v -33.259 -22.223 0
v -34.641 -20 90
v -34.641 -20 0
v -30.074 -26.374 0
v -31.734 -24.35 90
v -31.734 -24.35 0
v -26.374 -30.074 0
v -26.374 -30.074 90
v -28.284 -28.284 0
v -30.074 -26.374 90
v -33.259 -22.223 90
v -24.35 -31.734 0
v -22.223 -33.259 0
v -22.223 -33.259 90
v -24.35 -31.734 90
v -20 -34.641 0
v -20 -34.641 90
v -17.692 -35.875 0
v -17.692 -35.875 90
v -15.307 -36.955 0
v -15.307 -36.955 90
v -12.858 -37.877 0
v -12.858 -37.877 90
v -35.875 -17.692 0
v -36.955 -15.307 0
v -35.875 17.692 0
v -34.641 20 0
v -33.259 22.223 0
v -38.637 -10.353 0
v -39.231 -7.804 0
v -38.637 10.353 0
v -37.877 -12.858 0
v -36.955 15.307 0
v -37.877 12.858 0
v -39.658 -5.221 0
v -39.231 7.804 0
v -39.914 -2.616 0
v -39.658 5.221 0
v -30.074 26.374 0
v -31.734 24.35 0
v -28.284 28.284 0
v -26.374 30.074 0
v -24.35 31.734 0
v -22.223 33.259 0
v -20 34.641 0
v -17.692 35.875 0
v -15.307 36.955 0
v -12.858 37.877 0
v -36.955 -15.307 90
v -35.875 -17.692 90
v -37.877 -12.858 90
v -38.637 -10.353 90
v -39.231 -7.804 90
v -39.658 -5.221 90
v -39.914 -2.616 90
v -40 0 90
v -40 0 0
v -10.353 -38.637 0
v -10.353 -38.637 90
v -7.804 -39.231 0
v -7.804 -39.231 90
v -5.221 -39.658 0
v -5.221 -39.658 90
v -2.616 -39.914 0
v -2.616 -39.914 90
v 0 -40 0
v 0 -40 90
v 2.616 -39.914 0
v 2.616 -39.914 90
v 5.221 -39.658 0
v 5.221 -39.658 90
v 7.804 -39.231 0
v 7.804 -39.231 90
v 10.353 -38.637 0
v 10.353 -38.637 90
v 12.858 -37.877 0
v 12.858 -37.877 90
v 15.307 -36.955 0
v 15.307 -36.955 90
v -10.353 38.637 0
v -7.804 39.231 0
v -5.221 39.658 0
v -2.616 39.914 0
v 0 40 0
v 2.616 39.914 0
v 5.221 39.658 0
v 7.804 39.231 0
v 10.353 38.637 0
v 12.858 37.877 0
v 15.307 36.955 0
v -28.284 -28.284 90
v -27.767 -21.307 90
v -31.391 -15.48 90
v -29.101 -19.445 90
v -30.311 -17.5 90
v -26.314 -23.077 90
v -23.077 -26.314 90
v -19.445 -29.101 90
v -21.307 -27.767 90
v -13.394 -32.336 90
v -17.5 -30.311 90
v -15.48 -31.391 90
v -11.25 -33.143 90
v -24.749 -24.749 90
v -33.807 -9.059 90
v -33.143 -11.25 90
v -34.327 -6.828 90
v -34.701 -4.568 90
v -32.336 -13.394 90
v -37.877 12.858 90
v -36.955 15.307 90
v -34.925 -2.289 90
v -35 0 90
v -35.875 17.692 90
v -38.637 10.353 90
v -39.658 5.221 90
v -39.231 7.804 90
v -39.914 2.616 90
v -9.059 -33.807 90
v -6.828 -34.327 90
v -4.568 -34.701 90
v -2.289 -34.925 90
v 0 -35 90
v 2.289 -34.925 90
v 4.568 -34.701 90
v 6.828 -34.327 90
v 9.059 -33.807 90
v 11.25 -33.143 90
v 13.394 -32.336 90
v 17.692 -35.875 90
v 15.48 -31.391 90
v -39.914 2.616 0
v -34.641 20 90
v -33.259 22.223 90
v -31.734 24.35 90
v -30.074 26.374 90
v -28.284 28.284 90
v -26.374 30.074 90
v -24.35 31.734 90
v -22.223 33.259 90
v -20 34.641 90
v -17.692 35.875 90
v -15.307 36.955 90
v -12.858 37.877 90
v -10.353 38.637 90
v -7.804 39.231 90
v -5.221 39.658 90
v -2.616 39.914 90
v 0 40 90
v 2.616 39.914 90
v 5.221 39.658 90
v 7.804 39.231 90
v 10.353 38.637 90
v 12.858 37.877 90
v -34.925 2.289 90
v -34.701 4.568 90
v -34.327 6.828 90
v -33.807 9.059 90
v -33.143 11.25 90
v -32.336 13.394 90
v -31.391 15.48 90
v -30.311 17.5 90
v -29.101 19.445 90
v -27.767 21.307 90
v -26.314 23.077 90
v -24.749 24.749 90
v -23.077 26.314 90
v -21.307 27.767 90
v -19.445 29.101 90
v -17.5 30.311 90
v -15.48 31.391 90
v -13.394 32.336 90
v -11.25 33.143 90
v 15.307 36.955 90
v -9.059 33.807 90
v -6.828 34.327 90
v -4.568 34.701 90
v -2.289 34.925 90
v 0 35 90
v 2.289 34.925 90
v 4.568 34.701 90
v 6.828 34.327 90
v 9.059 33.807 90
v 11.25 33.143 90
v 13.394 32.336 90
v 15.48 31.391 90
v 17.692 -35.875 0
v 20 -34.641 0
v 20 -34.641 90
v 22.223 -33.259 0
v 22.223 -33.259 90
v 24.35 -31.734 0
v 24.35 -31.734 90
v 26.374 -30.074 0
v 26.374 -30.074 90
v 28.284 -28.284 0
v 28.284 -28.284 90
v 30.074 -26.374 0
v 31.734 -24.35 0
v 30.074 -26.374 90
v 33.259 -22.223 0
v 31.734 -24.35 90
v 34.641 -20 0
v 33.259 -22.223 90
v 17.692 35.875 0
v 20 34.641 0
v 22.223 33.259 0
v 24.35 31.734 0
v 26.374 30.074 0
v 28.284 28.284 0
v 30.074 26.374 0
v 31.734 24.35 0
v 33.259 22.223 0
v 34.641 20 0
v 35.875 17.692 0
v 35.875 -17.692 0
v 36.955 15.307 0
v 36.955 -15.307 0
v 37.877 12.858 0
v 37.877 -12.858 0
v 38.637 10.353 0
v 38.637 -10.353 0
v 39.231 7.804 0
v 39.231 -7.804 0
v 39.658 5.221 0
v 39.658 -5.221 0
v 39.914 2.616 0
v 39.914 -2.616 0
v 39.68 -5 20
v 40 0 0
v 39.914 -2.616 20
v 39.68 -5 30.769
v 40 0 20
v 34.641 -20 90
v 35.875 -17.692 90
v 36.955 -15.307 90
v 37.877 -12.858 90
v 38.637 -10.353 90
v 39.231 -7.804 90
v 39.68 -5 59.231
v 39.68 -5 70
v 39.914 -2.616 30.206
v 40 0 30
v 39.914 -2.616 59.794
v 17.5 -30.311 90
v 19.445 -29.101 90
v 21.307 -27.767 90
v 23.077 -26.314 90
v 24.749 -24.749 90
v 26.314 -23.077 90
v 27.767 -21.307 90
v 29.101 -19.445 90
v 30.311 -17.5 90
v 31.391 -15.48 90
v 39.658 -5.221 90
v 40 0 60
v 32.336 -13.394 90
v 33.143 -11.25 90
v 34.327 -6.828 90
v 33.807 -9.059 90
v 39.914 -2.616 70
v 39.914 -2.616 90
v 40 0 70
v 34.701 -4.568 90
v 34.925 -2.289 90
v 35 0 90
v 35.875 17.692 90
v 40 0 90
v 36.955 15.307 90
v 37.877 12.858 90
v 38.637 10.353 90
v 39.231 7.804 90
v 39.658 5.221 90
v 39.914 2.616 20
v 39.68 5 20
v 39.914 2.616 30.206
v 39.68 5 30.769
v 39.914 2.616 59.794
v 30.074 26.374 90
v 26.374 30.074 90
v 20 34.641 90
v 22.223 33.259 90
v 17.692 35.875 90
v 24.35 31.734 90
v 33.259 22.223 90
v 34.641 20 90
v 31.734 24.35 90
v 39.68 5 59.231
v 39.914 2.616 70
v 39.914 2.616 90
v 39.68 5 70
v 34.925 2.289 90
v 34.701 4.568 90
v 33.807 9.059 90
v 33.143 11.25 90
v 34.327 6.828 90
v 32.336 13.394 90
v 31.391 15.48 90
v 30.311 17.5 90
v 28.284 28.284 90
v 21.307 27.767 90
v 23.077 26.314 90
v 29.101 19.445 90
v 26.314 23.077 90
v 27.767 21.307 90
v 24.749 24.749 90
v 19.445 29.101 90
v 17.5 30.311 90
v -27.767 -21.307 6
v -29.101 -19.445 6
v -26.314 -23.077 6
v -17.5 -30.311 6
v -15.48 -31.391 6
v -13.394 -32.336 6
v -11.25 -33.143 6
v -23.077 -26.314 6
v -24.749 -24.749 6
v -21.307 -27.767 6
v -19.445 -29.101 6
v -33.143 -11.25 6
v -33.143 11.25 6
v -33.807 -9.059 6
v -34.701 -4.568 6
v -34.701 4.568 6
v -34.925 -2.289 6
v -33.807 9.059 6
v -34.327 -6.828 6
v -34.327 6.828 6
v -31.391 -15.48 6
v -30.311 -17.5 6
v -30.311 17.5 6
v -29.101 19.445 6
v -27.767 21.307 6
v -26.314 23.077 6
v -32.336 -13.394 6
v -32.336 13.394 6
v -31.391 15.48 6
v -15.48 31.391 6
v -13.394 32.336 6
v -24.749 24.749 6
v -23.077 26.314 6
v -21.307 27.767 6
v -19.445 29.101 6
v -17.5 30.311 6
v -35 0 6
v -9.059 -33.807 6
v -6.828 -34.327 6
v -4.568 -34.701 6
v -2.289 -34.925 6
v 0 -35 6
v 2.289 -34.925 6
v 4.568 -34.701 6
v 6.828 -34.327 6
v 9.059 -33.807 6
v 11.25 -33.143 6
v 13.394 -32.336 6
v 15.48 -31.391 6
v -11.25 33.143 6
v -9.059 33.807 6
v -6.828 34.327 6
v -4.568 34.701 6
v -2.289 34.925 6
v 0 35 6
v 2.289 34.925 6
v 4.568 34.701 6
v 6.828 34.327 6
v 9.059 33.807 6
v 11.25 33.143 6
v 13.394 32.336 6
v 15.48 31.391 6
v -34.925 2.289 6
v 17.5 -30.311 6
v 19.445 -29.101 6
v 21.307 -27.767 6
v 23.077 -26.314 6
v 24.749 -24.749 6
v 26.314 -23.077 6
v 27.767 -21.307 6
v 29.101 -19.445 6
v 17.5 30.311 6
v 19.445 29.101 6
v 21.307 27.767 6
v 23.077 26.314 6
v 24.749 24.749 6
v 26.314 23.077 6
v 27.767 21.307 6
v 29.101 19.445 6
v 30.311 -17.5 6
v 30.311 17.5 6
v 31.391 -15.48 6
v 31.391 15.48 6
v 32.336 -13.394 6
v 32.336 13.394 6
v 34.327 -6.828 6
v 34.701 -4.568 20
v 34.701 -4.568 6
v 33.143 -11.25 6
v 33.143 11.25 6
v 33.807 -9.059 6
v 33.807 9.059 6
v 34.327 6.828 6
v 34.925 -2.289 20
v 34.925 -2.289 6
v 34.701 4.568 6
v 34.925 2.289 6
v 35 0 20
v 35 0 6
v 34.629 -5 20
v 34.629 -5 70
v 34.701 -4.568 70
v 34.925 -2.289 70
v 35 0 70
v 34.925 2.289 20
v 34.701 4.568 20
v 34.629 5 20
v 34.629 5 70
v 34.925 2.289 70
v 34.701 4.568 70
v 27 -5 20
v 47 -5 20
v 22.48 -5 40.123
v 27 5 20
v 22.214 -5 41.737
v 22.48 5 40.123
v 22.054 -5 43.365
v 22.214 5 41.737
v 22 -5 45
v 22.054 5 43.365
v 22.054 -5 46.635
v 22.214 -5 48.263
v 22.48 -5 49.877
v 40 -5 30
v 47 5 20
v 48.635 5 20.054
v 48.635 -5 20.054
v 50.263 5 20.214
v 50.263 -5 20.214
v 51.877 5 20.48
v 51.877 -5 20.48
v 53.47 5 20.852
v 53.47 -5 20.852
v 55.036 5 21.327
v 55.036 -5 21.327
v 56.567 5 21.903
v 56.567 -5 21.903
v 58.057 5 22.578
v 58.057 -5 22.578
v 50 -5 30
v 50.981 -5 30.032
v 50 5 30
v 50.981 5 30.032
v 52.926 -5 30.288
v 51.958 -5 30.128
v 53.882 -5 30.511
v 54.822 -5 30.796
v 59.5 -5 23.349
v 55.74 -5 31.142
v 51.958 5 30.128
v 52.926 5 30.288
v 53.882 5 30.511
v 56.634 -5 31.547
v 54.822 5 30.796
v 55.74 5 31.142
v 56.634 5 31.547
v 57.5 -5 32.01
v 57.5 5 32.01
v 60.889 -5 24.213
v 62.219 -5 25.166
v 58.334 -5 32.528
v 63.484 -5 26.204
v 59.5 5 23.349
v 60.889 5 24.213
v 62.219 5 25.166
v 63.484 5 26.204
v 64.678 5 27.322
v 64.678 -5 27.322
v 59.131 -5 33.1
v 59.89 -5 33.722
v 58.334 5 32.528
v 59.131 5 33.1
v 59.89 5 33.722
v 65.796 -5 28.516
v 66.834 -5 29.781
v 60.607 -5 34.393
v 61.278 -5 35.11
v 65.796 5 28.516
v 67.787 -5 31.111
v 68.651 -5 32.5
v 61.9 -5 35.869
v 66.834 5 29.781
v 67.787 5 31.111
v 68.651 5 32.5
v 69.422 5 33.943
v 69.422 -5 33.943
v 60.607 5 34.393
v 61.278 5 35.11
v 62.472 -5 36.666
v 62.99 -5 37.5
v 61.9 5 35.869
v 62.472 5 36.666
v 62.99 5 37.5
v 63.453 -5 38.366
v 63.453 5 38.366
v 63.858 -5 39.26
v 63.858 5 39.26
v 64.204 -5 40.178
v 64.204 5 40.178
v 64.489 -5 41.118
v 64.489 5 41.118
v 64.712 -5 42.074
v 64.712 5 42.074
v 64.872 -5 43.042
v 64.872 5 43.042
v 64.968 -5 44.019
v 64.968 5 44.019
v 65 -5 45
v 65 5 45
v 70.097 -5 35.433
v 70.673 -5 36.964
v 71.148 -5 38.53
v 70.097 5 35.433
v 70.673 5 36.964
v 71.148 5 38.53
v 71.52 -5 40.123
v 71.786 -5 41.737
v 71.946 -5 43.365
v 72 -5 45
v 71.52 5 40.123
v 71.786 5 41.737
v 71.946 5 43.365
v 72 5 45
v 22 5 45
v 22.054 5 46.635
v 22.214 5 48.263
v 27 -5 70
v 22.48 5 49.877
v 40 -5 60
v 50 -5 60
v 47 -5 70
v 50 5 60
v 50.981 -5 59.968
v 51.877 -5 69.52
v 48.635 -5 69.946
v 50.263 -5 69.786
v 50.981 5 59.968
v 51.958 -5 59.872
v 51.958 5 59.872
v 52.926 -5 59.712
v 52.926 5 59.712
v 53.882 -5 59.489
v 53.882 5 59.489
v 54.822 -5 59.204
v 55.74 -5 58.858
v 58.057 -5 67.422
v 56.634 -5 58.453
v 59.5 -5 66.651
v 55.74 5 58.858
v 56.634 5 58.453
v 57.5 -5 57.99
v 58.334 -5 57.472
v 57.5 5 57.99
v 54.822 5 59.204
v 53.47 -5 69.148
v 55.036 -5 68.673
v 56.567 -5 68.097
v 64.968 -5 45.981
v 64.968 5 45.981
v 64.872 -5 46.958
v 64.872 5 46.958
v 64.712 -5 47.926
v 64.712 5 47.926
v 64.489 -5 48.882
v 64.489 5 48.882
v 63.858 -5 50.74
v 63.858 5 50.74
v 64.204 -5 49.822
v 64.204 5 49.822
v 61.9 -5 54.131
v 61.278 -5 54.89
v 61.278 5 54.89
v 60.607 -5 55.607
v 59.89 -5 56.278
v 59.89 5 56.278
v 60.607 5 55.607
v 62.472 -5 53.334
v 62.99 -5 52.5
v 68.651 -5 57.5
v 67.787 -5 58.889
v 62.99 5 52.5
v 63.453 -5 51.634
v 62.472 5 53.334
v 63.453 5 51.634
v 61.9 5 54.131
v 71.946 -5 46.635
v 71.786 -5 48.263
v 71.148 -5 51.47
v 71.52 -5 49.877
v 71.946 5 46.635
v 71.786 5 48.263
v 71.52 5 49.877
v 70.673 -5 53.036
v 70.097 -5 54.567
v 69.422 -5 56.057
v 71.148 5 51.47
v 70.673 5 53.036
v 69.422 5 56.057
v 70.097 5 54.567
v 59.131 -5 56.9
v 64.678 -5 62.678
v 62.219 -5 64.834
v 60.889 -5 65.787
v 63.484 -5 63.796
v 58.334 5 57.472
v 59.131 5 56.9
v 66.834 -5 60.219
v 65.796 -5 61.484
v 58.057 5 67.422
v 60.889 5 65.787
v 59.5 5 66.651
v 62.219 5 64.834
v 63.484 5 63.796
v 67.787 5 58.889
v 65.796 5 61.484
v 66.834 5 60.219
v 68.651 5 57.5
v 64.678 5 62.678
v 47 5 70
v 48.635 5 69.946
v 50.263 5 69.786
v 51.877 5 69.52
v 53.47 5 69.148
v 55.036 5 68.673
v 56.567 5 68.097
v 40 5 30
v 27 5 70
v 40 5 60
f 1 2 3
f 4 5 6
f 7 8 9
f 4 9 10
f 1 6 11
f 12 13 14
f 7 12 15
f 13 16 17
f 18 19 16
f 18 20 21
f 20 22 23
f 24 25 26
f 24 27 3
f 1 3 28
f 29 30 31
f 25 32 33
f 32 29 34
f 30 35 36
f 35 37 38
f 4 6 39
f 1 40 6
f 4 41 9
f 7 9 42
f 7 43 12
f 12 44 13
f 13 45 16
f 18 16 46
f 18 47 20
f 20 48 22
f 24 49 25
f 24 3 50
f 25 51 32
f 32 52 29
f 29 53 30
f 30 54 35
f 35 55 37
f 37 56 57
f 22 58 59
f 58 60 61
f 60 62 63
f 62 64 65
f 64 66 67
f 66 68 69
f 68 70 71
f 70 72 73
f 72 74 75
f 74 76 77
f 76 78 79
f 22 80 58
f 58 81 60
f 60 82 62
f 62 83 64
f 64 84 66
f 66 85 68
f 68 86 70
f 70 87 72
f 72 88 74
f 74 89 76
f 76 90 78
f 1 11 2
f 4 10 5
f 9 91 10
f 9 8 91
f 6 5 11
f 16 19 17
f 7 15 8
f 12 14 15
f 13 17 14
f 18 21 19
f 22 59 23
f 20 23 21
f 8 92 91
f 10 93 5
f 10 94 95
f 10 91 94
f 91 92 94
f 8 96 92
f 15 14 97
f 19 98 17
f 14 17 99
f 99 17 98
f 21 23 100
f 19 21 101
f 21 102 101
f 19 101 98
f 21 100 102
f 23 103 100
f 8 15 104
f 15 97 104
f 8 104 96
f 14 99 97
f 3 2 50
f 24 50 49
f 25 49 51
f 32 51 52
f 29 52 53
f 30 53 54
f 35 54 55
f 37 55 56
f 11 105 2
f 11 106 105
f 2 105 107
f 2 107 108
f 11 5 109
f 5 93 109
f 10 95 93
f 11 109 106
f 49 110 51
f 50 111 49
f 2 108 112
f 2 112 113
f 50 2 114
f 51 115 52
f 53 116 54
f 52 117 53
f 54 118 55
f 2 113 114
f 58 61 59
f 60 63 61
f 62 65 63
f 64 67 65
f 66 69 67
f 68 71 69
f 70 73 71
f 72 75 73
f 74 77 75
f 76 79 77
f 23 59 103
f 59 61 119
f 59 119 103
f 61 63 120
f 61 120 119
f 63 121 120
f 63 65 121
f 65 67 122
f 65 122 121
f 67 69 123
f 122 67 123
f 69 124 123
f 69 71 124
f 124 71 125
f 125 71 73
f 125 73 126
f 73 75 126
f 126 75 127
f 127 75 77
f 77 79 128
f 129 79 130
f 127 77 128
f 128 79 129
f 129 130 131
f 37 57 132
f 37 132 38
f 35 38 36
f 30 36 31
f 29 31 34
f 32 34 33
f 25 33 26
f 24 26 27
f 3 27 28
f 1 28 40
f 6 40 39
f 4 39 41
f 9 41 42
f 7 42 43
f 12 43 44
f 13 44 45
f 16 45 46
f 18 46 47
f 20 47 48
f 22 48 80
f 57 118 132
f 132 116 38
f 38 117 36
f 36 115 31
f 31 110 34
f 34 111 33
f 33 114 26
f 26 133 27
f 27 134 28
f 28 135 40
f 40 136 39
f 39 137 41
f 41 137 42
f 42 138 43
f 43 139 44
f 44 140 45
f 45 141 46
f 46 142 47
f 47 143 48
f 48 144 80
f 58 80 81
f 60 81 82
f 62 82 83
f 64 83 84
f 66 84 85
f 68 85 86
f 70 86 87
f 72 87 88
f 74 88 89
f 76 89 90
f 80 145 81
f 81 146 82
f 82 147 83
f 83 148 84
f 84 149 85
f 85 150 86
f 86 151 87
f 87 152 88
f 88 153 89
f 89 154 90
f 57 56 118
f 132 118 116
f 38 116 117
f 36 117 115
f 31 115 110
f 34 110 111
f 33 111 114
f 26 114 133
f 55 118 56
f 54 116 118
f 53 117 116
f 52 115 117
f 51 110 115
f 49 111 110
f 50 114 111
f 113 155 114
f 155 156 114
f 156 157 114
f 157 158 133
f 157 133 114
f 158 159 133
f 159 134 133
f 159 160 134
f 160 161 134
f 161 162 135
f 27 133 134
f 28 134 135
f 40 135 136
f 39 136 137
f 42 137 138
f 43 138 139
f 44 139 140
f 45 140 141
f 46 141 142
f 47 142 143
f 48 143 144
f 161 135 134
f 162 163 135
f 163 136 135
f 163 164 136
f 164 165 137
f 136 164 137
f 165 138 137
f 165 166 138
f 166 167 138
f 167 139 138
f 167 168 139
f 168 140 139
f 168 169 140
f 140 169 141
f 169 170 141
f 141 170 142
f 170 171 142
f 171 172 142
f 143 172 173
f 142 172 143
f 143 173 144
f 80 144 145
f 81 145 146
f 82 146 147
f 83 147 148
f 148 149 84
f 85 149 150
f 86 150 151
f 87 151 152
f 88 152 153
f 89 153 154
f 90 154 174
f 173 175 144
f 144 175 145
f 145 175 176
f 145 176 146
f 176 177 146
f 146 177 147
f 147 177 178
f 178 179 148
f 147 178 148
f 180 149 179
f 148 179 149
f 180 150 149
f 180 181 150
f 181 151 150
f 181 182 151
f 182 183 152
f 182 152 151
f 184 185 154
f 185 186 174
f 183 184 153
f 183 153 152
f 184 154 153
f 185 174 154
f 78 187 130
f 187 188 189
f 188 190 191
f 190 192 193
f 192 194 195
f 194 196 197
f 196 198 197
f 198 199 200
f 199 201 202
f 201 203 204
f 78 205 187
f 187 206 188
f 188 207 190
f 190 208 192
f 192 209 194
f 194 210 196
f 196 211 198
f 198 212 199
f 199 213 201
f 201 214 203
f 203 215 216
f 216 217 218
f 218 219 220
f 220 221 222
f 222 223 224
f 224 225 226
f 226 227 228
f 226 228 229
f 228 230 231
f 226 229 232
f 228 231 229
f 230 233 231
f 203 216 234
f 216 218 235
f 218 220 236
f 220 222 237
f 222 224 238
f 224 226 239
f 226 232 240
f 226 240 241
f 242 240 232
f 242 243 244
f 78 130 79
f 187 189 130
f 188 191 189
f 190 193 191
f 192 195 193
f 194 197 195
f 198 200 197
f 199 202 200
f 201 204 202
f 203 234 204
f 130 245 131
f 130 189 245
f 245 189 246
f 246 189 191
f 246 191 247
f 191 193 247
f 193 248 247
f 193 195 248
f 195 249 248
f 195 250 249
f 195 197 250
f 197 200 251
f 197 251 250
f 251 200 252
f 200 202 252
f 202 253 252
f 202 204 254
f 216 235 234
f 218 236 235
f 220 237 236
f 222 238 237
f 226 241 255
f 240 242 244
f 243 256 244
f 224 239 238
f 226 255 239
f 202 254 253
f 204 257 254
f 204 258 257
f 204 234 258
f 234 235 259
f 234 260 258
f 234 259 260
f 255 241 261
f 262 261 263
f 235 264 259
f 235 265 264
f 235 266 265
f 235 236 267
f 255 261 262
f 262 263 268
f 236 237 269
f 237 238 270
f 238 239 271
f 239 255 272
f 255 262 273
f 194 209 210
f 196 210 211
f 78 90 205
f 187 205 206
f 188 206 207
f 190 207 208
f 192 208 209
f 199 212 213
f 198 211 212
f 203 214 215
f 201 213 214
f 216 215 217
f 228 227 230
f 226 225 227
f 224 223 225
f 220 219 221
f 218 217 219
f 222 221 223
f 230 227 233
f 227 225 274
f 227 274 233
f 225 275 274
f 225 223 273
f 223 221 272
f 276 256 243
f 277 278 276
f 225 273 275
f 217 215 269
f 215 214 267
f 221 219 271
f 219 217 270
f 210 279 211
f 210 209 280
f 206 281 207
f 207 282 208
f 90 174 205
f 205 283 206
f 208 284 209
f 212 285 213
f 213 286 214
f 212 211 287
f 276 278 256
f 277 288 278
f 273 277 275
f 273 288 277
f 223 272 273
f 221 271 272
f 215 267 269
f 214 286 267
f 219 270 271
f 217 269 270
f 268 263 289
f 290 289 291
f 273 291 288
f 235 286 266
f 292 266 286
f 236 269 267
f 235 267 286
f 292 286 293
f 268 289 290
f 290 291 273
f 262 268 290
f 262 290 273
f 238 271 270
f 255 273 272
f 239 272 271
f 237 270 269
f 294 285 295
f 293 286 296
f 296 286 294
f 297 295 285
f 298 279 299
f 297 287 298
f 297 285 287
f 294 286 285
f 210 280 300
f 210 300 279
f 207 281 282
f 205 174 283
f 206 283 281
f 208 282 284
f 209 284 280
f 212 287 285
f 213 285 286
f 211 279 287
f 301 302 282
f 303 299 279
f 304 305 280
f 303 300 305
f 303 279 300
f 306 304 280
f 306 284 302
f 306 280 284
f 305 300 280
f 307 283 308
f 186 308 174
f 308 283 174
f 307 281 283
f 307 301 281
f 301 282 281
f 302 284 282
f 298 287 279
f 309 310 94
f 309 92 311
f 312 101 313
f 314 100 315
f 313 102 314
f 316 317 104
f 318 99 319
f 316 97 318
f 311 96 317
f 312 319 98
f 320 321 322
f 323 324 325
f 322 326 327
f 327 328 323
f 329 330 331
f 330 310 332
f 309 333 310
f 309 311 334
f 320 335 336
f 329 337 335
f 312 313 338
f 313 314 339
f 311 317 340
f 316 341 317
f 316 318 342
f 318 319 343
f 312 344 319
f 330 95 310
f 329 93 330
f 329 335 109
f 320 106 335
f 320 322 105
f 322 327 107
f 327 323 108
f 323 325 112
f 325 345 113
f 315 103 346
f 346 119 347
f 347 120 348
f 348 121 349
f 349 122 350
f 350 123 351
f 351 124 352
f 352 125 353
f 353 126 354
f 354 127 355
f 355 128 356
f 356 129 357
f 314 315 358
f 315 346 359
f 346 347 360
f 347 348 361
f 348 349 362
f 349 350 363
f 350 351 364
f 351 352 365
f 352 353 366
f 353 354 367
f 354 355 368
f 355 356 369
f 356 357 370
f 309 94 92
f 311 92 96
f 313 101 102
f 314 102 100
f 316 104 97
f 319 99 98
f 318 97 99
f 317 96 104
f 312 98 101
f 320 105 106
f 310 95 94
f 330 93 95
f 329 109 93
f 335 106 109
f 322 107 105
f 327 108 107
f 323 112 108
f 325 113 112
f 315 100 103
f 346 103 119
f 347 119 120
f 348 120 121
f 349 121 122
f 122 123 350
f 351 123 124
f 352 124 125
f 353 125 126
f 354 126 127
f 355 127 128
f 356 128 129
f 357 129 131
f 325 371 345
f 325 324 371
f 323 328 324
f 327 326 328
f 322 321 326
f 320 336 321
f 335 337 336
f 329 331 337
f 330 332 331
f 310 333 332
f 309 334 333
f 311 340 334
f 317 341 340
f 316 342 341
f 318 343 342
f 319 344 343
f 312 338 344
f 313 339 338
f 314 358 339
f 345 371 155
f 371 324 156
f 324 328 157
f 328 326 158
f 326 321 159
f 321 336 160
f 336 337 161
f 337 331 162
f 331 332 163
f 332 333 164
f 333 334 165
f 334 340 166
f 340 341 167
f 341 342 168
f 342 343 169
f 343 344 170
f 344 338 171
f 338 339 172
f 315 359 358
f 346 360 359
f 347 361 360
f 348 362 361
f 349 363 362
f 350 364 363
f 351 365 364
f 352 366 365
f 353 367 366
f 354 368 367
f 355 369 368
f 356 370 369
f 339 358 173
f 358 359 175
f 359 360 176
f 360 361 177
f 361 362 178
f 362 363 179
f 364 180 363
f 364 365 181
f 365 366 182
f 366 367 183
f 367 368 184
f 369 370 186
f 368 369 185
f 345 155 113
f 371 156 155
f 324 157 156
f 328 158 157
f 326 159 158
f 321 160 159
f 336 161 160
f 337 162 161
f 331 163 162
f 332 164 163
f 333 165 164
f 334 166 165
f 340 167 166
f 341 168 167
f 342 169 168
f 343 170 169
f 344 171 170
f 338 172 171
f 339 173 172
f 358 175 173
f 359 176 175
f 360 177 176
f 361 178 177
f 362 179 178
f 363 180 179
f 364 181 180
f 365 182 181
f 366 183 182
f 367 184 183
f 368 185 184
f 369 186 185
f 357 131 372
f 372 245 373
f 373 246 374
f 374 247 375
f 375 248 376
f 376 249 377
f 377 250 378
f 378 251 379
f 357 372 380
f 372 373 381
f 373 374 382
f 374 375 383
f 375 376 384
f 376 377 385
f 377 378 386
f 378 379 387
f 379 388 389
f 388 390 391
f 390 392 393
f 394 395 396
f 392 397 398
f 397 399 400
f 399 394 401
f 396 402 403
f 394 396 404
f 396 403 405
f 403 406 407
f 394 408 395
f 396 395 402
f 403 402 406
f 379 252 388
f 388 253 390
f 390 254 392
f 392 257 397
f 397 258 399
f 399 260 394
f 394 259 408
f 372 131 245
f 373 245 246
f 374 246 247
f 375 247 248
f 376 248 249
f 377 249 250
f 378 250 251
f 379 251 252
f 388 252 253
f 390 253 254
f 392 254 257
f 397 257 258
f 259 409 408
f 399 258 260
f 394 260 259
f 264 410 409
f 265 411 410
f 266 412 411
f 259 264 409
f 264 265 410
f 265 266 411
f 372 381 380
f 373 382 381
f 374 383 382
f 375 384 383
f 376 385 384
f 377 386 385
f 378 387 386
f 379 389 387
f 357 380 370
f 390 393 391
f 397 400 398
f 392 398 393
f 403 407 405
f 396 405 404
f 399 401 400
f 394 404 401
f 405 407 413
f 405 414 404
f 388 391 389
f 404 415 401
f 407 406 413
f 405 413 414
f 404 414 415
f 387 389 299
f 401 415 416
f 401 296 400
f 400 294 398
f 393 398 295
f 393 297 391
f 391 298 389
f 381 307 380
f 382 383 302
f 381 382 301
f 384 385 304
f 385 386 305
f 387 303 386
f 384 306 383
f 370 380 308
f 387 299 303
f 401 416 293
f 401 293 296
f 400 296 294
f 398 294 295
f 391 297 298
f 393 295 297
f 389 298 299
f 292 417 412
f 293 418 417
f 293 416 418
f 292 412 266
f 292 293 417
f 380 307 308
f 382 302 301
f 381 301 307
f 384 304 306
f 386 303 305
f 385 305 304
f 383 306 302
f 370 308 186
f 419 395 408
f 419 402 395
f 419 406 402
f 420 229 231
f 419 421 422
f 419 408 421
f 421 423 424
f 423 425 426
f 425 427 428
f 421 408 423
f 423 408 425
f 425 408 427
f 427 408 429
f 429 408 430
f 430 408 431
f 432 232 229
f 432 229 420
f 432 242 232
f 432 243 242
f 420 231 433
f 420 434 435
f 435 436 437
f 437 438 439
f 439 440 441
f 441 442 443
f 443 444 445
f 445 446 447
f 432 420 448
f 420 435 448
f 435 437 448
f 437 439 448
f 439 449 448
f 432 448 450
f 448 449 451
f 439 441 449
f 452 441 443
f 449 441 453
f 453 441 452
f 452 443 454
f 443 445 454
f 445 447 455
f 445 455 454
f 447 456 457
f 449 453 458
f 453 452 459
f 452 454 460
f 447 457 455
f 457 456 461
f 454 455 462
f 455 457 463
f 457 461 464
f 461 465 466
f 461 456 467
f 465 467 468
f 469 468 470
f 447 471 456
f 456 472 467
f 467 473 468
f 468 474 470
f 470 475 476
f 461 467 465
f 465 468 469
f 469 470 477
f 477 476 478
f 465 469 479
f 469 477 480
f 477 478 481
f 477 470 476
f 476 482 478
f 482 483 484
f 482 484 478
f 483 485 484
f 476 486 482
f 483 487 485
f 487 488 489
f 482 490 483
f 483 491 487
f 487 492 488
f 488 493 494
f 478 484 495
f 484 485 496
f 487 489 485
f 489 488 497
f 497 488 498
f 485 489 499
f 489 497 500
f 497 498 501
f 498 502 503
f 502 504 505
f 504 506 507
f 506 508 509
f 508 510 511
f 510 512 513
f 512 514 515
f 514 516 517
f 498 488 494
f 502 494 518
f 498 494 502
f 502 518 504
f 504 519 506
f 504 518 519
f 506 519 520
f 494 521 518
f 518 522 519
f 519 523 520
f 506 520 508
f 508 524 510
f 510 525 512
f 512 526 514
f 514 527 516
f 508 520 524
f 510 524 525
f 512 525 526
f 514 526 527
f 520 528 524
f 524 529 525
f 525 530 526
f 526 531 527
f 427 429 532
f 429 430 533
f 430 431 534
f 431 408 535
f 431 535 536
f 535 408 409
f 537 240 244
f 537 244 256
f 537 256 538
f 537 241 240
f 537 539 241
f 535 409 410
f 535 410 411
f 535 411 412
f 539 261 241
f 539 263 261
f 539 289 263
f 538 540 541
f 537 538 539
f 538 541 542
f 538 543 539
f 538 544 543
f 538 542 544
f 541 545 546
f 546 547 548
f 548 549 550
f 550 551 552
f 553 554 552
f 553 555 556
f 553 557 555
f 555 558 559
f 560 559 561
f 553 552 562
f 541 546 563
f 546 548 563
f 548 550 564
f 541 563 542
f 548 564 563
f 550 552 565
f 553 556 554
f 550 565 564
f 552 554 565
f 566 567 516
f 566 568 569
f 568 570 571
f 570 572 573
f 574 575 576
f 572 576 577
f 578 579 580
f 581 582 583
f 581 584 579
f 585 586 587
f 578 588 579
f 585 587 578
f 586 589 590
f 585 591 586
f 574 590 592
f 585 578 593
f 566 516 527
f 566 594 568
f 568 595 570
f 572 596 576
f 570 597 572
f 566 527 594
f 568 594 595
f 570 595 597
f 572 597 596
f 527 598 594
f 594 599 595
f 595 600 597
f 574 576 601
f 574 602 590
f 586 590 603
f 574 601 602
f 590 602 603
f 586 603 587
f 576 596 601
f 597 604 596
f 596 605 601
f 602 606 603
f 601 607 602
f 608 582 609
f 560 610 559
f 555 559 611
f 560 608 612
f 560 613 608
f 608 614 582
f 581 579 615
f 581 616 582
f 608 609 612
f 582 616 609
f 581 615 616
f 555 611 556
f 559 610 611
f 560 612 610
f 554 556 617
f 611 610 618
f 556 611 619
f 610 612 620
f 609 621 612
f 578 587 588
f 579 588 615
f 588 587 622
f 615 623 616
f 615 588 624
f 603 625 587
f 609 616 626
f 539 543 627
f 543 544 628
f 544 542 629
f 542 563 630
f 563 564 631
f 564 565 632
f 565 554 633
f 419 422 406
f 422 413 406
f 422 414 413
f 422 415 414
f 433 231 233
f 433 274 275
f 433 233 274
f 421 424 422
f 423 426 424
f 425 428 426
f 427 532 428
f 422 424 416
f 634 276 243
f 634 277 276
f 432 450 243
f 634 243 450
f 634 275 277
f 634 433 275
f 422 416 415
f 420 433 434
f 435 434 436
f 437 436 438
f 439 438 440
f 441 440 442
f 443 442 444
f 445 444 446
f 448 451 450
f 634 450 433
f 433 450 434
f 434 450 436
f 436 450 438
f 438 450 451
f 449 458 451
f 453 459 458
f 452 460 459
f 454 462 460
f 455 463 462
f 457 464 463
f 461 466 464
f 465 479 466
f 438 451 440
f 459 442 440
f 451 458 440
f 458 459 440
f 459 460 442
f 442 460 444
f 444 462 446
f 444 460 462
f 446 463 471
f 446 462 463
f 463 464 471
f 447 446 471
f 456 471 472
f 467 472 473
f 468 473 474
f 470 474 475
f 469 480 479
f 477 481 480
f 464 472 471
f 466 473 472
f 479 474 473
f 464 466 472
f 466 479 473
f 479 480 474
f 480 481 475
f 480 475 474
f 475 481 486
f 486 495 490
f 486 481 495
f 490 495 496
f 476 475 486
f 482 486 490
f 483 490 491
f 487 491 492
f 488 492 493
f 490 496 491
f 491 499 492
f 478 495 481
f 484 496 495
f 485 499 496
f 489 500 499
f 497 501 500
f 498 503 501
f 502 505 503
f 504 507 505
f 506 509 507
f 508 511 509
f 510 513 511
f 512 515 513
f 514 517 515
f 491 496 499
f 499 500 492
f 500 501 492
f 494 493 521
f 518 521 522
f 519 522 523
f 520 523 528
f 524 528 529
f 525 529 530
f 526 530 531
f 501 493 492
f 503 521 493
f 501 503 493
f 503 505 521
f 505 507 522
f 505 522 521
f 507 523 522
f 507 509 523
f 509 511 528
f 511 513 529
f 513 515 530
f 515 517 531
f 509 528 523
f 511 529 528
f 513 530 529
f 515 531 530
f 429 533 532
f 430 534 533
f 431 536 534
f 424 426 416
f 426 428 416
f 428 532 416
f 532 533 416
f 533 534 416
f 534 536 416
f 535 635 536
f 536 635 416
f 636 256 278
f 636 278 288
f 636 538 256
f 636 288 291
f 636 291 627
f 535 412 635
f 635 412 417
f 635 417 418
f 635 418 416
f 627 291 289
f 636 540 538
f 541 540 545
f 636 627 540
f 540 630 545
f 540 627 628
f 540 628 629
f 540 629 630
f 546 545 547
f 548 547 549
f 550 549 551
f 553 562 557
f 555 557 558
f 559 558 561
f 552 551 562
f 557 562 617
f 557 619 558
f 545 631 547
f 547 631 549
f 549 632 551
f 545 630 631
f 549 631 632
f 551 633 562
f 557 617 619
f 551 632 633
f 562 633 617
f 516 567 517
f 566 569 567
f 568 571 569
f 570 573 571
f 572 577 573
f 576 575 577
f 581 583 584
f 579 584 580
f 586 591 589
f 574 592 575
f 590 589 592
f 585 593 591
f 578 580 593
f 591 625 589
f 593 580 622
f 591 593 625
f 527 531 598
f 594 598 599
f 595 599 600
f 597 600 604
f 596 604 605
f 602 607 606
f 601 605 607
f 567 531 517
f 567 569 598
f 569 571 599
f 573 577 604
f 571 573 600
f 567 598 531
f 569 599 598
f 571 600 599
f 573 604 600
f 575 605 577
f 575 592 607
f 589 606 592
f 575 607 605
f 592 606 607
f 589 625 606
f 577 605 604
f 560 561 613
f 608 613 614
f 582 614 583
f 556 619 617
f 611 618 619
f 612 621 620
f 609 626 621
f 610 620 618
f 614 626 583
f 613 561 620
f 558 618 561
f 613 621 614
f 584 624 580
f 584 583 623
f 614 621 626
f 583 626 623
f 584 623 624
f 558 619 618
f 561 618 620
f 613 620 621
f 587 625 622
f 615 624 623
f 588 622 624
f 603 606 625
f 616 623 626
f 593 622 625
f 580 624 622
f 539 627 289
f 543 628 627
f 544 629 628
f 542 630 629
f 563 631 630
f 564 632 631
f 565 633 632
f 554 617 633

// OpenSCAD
// マグカップ（取手は +X 方向のみ）

// パラメータ
outer_d   = 80;   // 外径
inner_d   = 70;   // 内径
wall      = (outer_d - inner_d) / 2; // 肉厚 5mm
height    = 90;   // 全体高さ
bottom_th = 6;    // 底厚

outer_r = outer_d / 2; // 40
inner_r = inner_d / 2; // 35

// 取手パラメータ
hole_h   = 30;    // 取手内側の高さ
hole_w   = 25;    // 取手内側の幅
h_thick  = 10;    // 取手の太さ（断面・押し出し方向）
embed    = 3;     // 本体への食い込み量（接続強化）
handle_z = height / 2; // 取手を高さ中央に

$fn = 96;

// ===== 本体 =====
module body() {
    difference() {
        cylinder(h = height, r = outer_r);
        translate([0, 0, bottom_th])
            cylinder(h = height - bottom_th + 1, r = inner_r);
    }
}

// ===== 取手 =====
// D字形状: 外側半円 + 直線（本体側）
// XZ平面で形状を定義し、Y方向へ押し出す
module handle() {
    handle_outer_h = hole_h + 2 * h_thick; // 全体高さ
    handle_outer_w = hole_w + 2 * h_thick; // 全体幅

    // 本体表面より少し内側(embed)から張り出して接続を確実にする
    translate([outer_r - h_thick - embed, 0, handle_z])
    rotate([90, 0, 0])
    linear_extrude(height = h_thick, center = true)
    difference() {
        // 外形 D字
        hull() {
            translate([0, -handle_outer_h/2])
                square([1, handle_outer_h]);
            translate([handle_outer_w - handle_outer_h/2, 0])
                circle(d = handle_outer_h);
        }
        // 内側の穴 D字
        hull() {
            translate([h_thick + embed, -hole_h/2])
                square([1, hole_h]);
            translate([h_thick + embed + hole_w - hole_h/2, 0])
                circle(d = hole_h);
        }
    }
}

// ===== 結合 =====
union() {
    body();
    handle();
}
